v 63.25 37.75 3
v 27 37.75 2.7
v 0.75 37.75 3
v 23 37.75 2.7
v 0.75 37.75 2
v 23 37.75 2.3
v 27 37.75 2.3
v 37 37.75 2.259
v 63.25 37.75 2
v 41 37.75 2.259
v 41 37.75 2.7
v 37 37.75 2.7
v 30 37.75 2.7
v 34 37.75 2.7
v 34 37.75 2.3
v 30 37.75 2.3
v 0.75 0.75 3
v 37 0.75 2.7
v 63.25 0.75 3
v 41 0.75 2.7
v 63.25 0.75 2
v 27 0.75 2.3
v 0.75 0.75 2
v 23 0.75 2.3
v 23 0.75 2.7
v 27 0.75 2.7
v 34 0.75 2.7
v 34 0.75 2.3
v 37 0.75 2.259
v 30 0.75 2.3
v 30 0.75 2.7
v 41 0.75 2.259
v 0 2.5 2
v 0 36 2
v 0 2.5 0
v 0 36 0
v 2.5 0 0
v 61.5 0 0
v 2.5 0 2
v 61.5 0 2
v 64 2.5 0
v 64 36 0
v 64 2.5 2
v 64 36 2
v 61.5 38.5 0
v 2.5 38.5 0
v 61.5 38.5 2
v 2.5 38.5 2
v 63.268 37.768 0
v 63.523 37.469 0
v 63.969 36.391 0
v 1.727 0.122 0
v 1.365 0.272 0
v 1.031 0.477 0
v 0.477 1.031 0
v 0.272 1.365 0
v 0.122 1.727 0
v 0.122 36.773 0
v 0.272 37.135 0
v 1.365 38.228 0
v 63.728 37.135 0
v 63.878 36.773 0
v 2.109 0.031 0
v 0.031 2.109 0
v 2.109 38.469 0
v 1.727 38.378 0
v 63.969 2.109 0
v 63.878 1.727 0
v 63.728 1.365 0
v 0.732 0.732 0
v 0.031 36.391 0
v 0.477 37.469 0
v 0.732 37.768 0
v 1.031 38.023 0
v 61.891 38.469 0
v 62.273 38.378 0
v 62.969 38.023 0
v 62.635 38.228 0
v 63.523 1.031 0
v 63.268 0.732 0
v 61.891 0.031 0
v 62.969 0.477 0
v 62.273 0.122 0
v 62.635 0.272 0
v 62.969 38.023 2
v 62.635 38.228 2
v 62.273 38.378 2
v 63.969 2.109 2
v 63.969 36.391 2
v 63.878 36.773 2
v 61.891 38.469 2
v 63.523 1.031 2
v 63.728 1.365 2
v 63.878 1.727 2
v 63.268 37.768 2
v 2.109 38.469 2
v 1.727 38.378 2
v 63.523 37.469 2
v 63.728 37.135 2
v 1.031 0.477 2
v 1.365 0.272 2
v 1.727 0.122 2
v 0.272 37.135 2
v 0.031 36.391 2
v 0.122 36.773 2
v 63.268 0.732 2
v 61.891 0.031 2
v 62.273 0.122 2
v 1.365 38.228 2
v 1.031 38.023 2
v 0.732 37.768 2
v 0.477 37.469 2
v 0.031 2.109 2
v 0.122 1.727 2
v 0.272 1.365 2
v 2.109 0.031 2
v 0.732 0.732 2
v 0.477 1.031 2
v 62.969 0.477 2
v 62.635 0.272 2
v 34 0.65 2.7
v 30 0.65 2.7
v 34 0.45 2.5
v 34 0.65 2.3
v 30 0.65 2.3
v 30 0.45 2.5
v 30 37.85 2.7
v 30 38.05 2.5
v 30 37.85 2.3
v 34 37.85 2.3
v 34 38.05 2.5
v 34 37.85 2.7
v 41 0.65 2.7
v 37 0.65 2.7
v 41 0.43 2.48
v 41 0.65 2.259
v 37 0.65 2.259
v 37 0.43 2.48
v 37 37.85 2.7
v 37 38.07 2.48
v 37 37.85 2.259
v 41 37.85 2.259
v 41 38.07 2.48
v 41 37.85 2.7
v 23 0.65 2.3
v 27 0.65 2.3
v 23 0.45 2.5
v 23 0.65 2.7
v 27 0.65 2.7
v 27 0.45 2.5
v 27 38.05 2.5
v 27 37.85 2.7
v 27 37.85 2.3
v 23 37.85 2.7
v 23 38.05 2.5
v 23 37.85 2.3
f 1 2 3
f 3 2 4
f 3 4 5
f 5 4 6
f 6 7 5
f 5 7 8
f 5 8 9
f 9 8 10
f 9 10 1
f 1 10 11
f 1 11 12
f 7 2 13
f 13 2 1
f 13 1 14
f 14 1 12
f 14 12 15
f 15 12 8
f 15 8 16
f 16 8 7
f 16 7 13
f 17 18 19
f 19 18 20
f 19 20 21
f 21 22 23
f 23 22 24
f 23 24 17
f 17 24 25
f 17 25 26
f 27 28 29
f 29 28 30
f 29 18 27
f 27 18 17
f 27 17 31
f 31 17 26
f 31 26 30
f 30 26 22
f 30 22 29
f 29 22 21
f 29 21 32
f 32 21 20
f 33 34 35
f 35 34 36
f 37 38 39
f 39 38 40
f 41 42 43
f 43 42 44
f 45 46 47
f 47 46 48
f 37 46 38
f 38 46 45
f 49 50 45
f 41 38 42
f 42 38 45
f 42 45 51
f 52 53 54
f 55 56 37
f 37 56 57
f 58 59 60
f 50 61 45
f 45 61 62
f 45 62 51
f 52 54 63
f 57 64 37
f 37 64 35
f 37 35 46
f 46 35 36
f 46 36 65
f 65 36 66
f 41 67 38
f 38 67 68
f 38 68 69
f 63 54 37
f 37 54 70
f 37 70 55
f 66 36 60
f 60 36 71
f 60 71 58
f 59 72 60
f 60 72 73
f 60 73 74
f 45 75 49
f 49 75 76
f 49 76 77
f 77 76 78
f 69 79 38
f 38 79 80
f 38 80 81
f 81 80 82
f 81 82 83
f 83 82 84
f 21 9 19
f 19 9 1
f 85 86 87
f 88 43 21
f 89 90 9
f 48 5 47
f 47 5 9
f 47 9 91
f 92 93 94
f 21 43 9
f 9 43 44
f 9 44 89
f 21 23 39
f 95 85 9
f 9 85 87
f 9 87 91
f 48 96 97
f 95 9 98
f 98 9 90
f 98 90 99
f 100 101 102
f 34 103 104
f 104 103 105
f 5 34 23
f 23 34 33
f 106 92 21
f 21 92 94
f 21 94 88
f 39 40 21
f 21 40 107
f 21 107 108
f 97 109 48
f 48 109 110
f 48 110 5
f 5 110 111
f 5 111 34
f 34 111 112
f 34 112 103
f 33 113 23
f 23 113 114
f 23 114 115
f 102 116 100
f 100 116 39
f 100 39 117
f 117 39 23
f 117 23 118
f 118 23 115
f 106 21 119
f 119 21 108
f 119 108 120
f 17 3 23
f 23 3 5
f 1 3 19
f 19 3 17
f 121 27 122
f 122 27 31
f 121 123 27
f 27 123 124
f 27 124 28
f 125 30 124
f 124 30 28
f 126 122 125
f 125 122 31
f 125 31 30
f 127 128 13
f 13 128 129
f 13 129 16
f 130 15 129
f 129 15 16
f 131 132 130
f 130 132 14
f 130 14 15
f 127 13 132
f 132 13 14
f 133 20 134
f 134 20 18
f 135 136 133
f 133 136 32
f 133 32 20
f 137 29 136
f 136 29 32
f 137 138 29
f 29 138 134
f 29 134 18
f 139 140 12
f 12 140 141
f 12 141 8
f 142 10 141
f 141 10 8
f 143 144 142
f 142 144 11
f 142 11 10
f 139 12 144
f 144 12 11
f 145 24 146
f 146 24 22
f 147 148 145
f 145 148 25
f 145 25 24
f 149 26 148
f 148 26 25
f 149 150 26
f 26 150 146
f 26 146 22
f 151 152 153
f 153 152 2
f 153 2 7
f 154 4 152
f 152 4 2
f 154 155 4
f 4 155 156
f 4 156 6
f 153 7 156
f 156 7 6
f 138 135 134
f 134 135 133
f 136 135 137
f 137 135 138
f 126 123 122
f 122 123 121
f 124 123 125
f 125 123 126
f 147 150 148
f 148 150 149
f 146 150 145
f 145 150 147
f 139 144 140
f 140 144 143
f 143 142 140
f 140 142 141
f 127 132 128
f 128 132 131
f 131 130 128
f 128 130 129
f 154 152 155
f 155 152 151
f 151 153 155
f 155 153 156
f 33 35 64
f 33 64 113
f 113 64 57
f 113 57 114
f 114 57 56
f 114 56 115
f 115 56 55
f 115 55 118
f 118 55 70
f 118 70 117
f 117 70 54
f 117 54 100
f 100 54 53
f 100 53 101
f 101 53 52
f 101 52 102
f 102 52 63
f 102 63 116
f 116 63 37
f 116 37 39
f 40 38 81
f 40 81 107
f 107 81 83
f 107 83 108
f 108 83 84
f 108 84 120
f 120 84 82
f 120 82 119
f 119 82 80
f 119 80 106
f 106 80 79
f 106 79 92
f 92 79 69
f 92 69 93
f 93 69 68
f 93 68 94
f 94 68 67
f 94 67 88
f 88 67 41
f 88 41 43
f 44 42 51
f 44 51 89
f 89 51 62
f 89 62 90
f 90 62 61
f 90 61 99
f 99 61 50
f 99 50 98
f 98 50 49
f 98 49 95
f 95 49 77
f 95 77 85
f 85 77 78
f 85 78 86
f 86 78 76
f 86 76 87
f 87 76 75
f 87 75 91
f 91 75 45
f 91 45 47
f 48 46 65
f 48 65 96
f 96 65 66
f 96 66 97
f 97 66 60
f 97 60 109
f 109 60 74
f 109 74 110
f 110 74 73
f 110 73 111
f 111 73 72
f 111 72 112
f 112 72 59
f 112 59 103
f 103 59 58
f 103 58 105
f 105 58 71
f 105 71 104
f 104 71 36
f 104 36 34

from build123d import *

# Parameters (mm, degrees)
SKETCH1_W                = 64
SKETCH1_H                = 38.5
BOSS_EXTRUDE1_DEPTH      = 3
SKETCH2_W                = 64
SKETCH2_H                = 38.5
SKETCH2_W_2              = 62.5
SKETCH2_H_2              = 37
CUT_EXTRUDE1_DEPTH       = 1
BOSS_EXTRUDE2_DEPTH      = 0.5
BOSS_EXTRUDE2_DEPTH_BACK = 37.5
SKETCH3_W                = 4
SKETCH3_H                = 0.4
SKETCH3_H_2              = 0.44075926
CHAMFER8_SIZE            = 0.4
CHAMFER9_SIZE            = 0.4
CHAMFER10_SIZE           = 0.4
CHAMFER11_SIZE           = 0.4
FILLET7_R                = 2.5


with BuildPart() as part:
    # Sketch1 → Boss-Extrude1 (new body)
    with BuildSketch(Plane.XY):
        with Locations((32, 19.25)):
            Rectangle(SKETCH1_W, SKETCH1_H)
    extrude(amount=BOSS_EXTRUDE1_DEPTH)

    # Sketch2 → Cut-Extrude1 (cut)
    with BuildSketch(Plane.XY.offset(3)):
        with Locations((32, 19.25)):
            Rectangle(SKETCH2_W, SKETCH2_H)
        with Locations((32, 19.25)):
            Rectangle(SKETCH2_W_2, SKETCH2_H_2, mode=Mode.SUBTRACT)
    extrude(amount=-CUT_EXTRUDE1_DEPTH, mode=Mode.SUBTRACT)

    # Sketch3 → Boss-Extrude2 (add, two sides: drawn at the far end of the back side and taken through both)
    with BuildSketch(Plane.XZ.offset(-0.75).offset(-BOSS_EXTRUDE2_DEPTH_BACK)):
        with Locations((32, 2.5)):
            Rectangle(SKETCH3_W, SKETCH3_H)
        with Locations((39, 2.47962037)):
            Rectangle(SKETCH3_W, SKETCH3_H_2)
        with Locations((25, 2.5)):
            Rectangle(SKETCH3_W, SKETCH3_H)
    extrude(amount=BOSS_EXTRUDE2_DEPTH + BOSS_EXTRUDE2_DEPTH_BACK)

    # Chamfer8
    # the kernel refuses this chamfer: 0.4 mm, written as the material it takes off along each edge
    with BuildSketch(Plane(origin=(42.028673195, 0.25, 2.25924074), x_dir=(0, 0.9996219169112968, -0.02749587661058628), z_dir=(-1, 0, 0)), Plane(origin=(35.971326805, 0.25, 2.7), x_dir=(0, 0.9996219169112968, 0.02749587661058628), z_dir=(1, 0, 0))) as chamfer8_piece_1:
        Polygon((CHAMFER8_SIZE * 0.999621916911, -CHAMFER8_SIZE * 0.0274958766106), (-CHAMFER8_SIZE * 0.0274958766106, -CHAMFER8_SIZE * 0.999621916911), (0, 0), align=None)
    extrude(amount=6.05734639, mode=Mode.SUBTRACT)

    # Chamfer9
    # the kernel refuses this chamfer: 0.4 mm, written as the material it takes off along each edge
    with BuildSketch(Plane(origin=(35.028673195, 0.25, 2.3), x_dir=(0, 0.9996219169112968, -0.02749587661058628), z_dir=(-1, 0, 0)), Plane(origin=(28.971326805, 0.25, 2.7), x_dir=(0, 0.9996219169112968, 0.02749587661058628), z_dir=(1, 0, 0))) as chamfer9_piece_1:
        Polygon((CHAMFER9_SIZE * 0.999621916911, -CHAMFER9_SIZE * 0.0274958766106), (-CHAMFER9_SIZE * 0.0274958766106, -CHAMFER9_SIZE * 0.999621916911), (0, 0), align=None)
    extrude(amount=6.05734639, mode=Mode.SUBTRACT)

    # Chamfer10
    # the kernel refuses this chamfer: 0.4 mm, written as the material it takes off along each edge
    with BuildSketch(Plane(origin=(21.971326805, 0.25, 2.3), x_dir=(0, 0.9996219169112968, -0.02749587661058628), z_dir=(1, 0, 0)), Plane(origin=(28.028673195, 0.25, 2.7), x_dir=(0, 0.9996219169112968, 0.02749587661058628), z_dir=(-1, 0, 0))) as chamfer10_piece_1:
        Polygon((CHAMFER10_SIZE * 0.999621916911, CHAMFER10_SIZE * 0.0274958766106), (-CHAMFER10_SIZE * 0.0274958766106, CHAMFER10_SIZE * 0.999621916911), (0, 0), align=None)
    extrude(amount=6.05734639, mode=Mode.SUBTRACT)

    # Chamfer11
    # the kernel refuses this chamfer: 0.4 mm, written as the material it takes off along each edge
    with BuildSketch(Plane(origin=(42.028673195, 38.25, 2.25924074), x_dir=(0, -0.9996219169112968, -0.02749587661058658), z_dir=(-1, 0, 0)), Plane(origin=(35.971326805, 38.25, 2.7), x_dir=(0, -0.9996219169112968, 0.02749587661058658), z_dir=(1, 0, 0)), Plane(origin=(35.028673195, 38.25, 2.3), x_dir=(0, -0.9996219169112968, -0.02749587661058658), z_dir=(-1, 0, 0)), Plane(origin=(28.971326805, 38.25, 2.7), x_dir=(0, -0.9996219169112968, 0.02749587661058658), z_dir=(1, 0, 0))) as chamfer11_piece_1:
        Polygon((CHAMFER11_SIZE * 0.999621916911, CHAMFER11_SIZE * 0.0274958766106), (-CHAMFER11_SIZE * 0.0274958766106, CHAMFER11_SIZE * 0.999621916911), (0, 0), align=None)
    extrude(amount=6.05734639, mode=Mode.SUBTRACT)
    with BuildSketch(Plane(origin=(21.971326805, 38.25, 2.3), x_dir=(0, -0.9996219169112968, -0.02749587661058658), z_dir=(1, 0, 0)), Plane(origin=(28.028673195, 38.25, 2.7), x_dir=(0, -0.9996219169112968, 0.02749587661058658), z_dir=(-1, 0, 0))) as chamfer11_piece_2:
        Polygon((CHAMFER11_SIZE * 0.999621916911, -CHAMFER11_SIZE * 0.0274958766106), (-CHAMFER11_SIZE * 0.0274958766106, -CHAMFER11_SIZE * 0.999621916911), (0, 0), align=None)
    extrude(amount=6.05734639, mode=Mode.SUBTRACT)

    # Fillet7
    fillet7_edges = [part.edges().sort_by_distance(p)[0] for p in [
        (0, 38.5, 1),
        (64, 38.5, 1),
        (64, 0, 1),
        (0, 0, 1),
    ]]
    fillet(fillet7_edges, radius=FILLET7_R)


solid = part.part
